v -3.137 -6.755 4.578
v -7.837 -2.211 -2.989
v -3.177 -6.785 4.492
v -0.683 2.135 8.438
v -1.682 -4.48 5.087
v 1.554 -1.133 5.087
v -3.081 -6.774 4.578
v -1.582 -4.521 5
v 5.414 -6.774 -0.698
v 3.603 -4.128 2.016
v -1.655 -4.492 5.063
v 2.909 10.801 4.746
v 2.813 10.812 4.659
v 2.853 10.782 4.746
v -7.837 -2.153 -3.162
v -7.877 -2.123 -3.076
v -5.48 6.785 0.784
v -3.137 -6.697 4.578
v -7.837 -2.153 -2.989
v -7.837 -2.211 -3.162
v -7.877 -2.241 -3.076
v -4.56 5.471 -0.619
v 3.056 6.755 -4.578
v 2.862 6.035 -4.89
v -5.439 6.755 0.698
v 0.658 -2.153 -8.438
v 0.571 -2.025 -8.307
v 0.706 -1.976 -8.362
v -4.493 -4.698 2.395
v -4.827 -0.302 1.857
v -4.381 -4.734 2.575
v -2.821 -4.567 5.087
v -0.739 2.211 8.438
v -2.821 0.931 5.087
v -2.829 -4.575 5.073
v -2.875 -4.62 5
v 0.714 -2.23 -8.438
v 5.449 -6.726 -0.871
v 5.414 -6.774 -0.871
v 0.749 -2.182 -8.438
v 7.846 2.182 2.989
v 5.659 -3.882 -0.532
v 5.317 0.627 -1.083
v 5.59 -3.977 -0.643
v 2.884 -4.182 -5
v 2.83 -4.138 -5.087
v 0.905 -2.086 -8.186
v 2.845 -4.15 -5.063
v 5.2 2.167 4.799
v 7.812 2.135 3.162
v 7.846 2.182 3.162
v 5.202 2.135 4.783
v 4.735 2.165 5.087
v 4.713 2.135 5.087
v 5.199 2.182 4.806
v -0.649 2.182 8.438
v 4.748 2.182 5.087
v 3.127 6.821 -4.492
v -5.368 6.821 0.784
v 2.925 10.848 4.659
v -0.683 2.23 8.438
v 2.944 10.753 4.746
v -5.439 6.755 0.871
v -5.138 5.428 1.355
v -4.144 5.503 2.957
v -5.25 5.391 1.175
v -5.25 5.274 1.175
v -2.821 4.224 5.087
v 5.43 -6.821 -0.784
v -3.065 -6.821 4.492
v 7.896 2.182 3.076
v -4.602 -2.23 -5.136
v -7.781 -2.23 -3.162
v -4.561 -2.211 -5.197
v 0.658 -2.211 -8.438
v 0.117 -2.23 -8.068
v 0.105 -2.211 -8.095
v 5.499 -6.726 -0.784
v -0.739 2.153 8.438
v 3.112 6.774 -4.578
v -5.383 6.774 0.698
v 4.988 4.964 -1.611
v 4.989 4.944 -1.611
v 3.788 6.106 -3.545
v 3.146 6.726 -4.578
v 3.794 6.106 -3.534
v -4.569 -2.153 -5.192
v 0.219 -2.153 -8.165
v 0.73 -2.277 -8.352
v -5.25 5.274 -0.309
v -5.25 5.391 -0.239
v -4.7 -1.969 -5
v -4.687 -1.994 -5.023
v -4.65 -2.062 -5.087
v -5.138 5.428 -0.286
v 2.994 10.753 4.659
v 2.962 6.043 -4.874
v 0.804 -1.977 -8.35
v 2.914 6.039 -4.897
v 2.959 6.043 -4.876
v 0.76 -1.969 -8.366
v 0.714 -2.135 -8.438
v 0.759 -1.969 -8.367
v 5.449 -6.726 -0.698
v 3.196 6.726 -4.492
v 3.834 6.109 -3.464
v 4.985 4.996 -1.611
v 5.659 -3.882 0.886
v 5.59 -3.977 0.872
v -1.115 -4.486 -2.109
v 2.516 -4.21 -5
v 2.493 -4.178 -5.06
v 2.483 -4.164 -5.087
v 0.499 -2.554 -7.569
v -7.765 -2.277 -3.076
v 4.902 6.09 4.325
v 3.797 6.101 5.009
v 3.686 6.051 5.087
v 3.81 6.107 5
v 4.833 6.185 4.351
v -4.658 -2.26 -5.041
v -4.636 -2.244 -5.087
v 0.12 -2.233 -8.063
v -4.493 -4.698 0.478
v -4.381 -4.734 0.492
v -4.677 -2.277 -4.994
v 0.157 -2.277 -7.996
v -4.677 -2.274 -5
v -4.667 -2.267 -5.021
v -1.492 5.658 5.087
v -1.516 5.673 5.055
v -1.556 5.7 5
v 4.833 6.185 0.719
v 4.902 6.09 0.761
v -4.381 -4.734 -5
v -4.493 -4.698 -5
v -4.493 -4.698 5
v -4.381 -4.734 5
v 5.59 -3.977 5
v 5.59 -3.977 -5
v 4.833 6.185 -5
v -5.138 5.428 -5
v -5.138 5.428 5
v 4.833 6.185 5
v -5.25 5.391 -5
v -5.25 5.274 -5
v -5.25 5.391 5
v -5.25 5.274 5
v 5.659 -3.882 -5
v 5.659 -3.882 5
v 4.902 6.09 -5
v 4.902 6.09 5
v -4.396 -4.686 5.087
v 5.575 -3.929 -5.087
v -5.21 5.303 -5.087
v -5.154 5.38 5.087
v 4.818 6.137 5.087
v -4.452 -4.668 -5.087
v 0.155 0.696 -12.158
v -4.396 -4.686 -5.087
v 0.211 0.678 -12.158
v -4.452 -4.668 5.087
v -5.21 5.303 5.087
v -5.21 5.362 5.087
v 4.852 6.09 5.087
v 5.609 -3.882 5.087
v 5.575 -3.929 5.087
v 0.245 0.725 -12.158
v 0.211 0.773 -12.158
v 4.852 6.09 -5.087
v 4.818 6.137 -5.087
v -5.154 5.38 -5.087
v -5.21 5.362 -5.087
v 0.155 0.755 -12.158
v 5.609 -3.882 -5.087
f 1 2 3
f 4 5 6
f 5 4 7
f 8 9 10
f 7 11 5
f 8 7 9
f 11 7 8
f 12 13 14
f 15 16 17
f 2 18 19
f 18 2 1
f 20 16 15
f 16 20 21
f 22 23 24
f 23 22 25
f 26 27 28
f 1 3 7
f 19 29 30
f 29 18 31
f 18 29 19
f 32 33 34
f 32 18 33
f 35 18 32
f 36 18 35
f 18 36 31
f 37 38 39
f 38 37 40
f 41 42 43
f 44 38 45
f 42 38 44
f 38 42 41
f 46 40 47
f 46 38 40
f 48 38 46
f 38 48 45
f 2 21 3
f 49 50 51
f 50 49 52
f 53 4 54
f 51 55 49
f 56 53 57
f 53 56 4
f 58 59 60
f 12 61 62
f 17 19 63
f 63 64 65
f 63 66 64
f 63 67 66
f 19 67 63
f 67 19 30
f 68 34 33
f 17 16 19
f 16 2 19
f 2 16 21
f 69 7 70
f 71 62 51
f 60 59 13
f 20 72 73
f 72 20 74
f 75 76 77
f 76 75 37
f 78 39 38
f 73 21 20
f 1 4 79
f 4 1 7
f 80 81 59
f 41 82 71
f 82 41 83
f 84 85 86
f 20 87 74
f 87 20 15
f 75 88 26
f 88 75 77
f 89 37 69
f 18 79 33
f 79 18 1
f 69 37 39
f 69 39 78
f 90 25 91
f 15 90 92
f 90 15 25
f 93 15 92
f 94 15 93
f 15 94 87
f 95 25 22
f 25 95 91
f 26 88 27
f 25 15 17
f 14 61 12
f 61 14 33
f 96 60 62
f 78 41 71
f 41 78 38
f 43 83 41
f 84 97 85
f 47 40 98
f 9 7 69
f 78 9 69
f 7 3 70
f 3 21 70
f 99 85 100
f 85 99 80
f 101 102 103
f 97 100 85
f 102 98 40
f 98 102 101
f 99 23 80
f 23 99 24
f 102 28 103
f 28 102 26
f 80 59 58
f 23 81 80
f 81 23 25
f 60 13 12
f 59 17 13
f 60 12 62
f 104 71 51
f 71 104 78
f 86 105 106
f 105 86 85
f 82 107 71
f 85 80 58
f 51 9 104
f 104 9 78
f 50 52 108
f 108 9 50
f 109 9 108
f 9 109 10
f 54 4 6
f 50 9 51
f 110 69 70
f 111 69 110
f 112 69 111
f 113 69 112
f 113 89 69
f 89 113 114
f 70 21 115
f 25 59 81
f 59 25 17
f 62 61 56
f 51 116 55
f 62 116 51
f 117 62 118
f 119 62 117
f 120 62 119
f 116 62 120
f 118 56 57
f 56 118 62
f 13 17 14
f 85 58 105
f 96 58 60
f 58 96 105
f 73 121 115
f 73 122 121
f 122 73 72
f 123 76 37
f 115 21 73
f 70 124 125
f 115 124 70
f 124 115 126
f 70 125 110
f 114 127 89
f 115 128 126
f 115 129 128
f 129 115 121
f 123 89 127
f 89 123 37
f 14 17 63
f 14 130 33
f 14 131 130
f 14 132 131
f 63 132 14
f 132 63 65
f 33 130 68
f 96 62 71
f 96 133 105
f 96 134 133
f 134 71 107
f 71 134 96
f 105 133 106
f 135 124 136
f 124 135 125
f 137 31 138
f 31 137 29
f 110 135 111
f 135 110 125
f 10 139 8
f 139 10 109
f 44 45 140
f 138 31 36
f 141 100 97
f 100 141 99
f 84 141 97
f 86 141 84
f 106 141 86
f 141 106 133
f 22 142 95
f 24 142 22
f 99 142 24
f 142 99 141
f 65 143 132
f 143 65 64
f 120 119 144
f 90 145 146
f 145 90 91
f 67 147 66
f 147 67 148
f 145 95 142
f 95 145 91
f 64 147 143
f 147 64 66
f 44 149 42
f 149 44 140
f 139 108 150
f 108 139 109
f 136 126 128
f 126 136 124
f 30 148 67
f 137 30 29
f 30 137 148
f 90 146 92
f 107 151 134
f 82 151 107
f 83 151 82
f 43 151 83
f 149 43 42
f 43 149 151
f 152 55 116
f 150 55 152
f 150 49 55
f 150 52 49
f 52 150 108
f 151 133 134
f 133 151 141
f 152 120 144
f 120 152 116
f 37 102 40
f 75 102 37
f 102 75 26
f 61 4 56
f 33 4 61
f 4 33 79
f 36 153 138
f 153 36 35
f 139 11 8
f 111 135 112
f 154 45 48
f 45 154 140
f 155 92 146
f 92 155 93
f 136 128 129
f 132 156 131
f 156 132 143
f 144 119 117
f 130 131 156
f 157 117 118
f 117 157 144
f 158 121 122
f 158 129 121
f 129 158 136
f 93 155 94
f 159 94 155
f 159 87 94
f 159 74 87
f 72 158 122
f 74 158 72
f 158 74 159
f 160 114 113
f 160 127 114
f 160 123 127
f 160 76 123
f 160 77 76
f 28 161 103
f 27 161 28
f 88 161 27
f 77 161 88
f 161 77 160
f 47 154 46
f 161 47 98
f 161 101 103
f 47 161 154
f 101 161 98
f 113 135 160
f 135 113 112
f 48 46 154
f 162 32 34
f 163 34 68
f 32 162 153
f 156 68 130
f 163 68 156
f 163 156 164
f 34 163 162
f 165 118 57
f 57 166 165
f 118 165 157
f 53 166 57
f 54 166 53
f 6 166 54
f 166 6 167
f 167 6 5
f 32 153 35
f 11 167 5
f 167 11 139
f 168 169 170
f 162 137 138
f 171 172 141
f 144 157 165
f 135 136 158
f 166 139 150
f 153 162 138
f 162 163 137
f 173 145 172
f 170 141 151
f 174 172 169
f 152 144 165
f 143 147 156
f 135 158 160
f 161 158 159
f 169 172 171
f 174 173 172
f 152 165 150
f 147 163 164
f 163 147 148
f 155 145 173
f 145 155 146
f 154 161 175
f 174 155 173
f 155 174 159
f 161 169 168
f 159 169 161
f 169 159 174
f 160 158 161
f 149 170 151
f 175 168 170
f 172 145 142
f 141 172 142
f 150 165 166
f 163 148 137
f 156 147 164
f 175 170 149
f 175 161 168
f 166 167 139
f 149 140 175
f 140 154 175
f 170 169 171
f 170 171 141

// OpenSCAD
// Auto-generated OpenSCAD file

    inner_points = 10*[[0.5559449618614191, -0.3881500309253424, -0.49999999999987577], [0.5559449618612677, -0.388150030925249, 0.5000000000001242], [0.48020738242017447, 0.6089777537945407, -0.4999999999999803], [0.48020738242002303, 0.6089777537946339, 0.5000000000000198], [-0.4411828228584638, -0.463887610366587, -0.5000000000000198], [-0.4411828228586152, -0.46388761036649373, 0.4999999999999803], [-0.5169204022997085, 0.5332401743532961, -0.5000000000001242], [-0.5169204022998598, 0.5332401743533893, 0.49999999999987577], [0.019512279780962472, 0.0725450717139109, -1.2071067811865475]];

    outer_points = 10*[[0.3096145243221563, 0.6725957727848044, -0.4491700933508113], [0.06987533319280242, -0.21820844720590366, -0.8351661579465389], [0.7796115315738568, 0.21820844720590366, 0.3075563906100046], [0.5398723404445028, -0.6725957727848044, -0.07843967398572299], [-0.5398723404445028, 0.6725957727848044, 0.07843967398572299], [-0.7796115315738568, -0.21820844720590366, -0.3075563906100046], [-0.06987533319280242, 0.21820844720590366, 0.8351661579465389], [-0.3096145243221563, -0.6725957727848044, 0.4491700933508113], [0.28939080332842093, 1.0752958146603768, 0.46593846708482345]];

    // Convex hull for inner set (I)
    module inner_hull() {
        hull() {
            for (p = inner_points) {
                translate(p) sphere(r=0.1);
            }
        }
    }

    // Convex hull for outer set (O) minus inner hull (O \ I)
    module outer_minus_inner() {
        difference() {
            hull() {
                for (p = outer_points) {
                    translate(p) sphere(r=0.1);
                }
            }
            inner_hull(); // Subtract inner hull
        }
    }

    // Convex hull for outer set (O) minus all translated inner hulls
    module outer_minus_AllTranslationInner() {
        difference() {
            hull() {
                for (p = outer_points) {
                    translate(p) sphere(r=0.1);
                }
            }
            hull() {
                translate([0,0,50]) inner_hull();
                translate([0,0,-50]) inner_hull();
            }; // Subtract translated inner hulls
        }
    }

    // Difference between outer_minus_inner and outer_minus_AllTranslationInner
    module outer_minus_inner_diff() {
        difference() {
            // Outer minus inner
            difference() {
                hull() {
                    for (p = outer_points) {
                        translate(p) sphere(r=0.1);
                    }
                }
                inner_hull();
            }

            // Subtract Outer minus AllTranslationInner
            difference() {
                hull() {
                    for (p = outer_points) {
                        translate(p) sphere(r=0.1);
                    }
                }
                hull() {
                    translate([0,0,50]) inner_hull();
                    translate([0,0,-50]) inner_hull();
                };
            }
        }
    }

    // Rendering all with colors applied
    color([1, 0, 0, 0.5]) inner_hull(); // Transparent red
    color([0, 1, 0, 1]) outer_minus_AllTranslationInner(); // Opaque green
    color([1, 1, 0, 1]) outer_minus_inner_diff(); // Opaque yellow
    
